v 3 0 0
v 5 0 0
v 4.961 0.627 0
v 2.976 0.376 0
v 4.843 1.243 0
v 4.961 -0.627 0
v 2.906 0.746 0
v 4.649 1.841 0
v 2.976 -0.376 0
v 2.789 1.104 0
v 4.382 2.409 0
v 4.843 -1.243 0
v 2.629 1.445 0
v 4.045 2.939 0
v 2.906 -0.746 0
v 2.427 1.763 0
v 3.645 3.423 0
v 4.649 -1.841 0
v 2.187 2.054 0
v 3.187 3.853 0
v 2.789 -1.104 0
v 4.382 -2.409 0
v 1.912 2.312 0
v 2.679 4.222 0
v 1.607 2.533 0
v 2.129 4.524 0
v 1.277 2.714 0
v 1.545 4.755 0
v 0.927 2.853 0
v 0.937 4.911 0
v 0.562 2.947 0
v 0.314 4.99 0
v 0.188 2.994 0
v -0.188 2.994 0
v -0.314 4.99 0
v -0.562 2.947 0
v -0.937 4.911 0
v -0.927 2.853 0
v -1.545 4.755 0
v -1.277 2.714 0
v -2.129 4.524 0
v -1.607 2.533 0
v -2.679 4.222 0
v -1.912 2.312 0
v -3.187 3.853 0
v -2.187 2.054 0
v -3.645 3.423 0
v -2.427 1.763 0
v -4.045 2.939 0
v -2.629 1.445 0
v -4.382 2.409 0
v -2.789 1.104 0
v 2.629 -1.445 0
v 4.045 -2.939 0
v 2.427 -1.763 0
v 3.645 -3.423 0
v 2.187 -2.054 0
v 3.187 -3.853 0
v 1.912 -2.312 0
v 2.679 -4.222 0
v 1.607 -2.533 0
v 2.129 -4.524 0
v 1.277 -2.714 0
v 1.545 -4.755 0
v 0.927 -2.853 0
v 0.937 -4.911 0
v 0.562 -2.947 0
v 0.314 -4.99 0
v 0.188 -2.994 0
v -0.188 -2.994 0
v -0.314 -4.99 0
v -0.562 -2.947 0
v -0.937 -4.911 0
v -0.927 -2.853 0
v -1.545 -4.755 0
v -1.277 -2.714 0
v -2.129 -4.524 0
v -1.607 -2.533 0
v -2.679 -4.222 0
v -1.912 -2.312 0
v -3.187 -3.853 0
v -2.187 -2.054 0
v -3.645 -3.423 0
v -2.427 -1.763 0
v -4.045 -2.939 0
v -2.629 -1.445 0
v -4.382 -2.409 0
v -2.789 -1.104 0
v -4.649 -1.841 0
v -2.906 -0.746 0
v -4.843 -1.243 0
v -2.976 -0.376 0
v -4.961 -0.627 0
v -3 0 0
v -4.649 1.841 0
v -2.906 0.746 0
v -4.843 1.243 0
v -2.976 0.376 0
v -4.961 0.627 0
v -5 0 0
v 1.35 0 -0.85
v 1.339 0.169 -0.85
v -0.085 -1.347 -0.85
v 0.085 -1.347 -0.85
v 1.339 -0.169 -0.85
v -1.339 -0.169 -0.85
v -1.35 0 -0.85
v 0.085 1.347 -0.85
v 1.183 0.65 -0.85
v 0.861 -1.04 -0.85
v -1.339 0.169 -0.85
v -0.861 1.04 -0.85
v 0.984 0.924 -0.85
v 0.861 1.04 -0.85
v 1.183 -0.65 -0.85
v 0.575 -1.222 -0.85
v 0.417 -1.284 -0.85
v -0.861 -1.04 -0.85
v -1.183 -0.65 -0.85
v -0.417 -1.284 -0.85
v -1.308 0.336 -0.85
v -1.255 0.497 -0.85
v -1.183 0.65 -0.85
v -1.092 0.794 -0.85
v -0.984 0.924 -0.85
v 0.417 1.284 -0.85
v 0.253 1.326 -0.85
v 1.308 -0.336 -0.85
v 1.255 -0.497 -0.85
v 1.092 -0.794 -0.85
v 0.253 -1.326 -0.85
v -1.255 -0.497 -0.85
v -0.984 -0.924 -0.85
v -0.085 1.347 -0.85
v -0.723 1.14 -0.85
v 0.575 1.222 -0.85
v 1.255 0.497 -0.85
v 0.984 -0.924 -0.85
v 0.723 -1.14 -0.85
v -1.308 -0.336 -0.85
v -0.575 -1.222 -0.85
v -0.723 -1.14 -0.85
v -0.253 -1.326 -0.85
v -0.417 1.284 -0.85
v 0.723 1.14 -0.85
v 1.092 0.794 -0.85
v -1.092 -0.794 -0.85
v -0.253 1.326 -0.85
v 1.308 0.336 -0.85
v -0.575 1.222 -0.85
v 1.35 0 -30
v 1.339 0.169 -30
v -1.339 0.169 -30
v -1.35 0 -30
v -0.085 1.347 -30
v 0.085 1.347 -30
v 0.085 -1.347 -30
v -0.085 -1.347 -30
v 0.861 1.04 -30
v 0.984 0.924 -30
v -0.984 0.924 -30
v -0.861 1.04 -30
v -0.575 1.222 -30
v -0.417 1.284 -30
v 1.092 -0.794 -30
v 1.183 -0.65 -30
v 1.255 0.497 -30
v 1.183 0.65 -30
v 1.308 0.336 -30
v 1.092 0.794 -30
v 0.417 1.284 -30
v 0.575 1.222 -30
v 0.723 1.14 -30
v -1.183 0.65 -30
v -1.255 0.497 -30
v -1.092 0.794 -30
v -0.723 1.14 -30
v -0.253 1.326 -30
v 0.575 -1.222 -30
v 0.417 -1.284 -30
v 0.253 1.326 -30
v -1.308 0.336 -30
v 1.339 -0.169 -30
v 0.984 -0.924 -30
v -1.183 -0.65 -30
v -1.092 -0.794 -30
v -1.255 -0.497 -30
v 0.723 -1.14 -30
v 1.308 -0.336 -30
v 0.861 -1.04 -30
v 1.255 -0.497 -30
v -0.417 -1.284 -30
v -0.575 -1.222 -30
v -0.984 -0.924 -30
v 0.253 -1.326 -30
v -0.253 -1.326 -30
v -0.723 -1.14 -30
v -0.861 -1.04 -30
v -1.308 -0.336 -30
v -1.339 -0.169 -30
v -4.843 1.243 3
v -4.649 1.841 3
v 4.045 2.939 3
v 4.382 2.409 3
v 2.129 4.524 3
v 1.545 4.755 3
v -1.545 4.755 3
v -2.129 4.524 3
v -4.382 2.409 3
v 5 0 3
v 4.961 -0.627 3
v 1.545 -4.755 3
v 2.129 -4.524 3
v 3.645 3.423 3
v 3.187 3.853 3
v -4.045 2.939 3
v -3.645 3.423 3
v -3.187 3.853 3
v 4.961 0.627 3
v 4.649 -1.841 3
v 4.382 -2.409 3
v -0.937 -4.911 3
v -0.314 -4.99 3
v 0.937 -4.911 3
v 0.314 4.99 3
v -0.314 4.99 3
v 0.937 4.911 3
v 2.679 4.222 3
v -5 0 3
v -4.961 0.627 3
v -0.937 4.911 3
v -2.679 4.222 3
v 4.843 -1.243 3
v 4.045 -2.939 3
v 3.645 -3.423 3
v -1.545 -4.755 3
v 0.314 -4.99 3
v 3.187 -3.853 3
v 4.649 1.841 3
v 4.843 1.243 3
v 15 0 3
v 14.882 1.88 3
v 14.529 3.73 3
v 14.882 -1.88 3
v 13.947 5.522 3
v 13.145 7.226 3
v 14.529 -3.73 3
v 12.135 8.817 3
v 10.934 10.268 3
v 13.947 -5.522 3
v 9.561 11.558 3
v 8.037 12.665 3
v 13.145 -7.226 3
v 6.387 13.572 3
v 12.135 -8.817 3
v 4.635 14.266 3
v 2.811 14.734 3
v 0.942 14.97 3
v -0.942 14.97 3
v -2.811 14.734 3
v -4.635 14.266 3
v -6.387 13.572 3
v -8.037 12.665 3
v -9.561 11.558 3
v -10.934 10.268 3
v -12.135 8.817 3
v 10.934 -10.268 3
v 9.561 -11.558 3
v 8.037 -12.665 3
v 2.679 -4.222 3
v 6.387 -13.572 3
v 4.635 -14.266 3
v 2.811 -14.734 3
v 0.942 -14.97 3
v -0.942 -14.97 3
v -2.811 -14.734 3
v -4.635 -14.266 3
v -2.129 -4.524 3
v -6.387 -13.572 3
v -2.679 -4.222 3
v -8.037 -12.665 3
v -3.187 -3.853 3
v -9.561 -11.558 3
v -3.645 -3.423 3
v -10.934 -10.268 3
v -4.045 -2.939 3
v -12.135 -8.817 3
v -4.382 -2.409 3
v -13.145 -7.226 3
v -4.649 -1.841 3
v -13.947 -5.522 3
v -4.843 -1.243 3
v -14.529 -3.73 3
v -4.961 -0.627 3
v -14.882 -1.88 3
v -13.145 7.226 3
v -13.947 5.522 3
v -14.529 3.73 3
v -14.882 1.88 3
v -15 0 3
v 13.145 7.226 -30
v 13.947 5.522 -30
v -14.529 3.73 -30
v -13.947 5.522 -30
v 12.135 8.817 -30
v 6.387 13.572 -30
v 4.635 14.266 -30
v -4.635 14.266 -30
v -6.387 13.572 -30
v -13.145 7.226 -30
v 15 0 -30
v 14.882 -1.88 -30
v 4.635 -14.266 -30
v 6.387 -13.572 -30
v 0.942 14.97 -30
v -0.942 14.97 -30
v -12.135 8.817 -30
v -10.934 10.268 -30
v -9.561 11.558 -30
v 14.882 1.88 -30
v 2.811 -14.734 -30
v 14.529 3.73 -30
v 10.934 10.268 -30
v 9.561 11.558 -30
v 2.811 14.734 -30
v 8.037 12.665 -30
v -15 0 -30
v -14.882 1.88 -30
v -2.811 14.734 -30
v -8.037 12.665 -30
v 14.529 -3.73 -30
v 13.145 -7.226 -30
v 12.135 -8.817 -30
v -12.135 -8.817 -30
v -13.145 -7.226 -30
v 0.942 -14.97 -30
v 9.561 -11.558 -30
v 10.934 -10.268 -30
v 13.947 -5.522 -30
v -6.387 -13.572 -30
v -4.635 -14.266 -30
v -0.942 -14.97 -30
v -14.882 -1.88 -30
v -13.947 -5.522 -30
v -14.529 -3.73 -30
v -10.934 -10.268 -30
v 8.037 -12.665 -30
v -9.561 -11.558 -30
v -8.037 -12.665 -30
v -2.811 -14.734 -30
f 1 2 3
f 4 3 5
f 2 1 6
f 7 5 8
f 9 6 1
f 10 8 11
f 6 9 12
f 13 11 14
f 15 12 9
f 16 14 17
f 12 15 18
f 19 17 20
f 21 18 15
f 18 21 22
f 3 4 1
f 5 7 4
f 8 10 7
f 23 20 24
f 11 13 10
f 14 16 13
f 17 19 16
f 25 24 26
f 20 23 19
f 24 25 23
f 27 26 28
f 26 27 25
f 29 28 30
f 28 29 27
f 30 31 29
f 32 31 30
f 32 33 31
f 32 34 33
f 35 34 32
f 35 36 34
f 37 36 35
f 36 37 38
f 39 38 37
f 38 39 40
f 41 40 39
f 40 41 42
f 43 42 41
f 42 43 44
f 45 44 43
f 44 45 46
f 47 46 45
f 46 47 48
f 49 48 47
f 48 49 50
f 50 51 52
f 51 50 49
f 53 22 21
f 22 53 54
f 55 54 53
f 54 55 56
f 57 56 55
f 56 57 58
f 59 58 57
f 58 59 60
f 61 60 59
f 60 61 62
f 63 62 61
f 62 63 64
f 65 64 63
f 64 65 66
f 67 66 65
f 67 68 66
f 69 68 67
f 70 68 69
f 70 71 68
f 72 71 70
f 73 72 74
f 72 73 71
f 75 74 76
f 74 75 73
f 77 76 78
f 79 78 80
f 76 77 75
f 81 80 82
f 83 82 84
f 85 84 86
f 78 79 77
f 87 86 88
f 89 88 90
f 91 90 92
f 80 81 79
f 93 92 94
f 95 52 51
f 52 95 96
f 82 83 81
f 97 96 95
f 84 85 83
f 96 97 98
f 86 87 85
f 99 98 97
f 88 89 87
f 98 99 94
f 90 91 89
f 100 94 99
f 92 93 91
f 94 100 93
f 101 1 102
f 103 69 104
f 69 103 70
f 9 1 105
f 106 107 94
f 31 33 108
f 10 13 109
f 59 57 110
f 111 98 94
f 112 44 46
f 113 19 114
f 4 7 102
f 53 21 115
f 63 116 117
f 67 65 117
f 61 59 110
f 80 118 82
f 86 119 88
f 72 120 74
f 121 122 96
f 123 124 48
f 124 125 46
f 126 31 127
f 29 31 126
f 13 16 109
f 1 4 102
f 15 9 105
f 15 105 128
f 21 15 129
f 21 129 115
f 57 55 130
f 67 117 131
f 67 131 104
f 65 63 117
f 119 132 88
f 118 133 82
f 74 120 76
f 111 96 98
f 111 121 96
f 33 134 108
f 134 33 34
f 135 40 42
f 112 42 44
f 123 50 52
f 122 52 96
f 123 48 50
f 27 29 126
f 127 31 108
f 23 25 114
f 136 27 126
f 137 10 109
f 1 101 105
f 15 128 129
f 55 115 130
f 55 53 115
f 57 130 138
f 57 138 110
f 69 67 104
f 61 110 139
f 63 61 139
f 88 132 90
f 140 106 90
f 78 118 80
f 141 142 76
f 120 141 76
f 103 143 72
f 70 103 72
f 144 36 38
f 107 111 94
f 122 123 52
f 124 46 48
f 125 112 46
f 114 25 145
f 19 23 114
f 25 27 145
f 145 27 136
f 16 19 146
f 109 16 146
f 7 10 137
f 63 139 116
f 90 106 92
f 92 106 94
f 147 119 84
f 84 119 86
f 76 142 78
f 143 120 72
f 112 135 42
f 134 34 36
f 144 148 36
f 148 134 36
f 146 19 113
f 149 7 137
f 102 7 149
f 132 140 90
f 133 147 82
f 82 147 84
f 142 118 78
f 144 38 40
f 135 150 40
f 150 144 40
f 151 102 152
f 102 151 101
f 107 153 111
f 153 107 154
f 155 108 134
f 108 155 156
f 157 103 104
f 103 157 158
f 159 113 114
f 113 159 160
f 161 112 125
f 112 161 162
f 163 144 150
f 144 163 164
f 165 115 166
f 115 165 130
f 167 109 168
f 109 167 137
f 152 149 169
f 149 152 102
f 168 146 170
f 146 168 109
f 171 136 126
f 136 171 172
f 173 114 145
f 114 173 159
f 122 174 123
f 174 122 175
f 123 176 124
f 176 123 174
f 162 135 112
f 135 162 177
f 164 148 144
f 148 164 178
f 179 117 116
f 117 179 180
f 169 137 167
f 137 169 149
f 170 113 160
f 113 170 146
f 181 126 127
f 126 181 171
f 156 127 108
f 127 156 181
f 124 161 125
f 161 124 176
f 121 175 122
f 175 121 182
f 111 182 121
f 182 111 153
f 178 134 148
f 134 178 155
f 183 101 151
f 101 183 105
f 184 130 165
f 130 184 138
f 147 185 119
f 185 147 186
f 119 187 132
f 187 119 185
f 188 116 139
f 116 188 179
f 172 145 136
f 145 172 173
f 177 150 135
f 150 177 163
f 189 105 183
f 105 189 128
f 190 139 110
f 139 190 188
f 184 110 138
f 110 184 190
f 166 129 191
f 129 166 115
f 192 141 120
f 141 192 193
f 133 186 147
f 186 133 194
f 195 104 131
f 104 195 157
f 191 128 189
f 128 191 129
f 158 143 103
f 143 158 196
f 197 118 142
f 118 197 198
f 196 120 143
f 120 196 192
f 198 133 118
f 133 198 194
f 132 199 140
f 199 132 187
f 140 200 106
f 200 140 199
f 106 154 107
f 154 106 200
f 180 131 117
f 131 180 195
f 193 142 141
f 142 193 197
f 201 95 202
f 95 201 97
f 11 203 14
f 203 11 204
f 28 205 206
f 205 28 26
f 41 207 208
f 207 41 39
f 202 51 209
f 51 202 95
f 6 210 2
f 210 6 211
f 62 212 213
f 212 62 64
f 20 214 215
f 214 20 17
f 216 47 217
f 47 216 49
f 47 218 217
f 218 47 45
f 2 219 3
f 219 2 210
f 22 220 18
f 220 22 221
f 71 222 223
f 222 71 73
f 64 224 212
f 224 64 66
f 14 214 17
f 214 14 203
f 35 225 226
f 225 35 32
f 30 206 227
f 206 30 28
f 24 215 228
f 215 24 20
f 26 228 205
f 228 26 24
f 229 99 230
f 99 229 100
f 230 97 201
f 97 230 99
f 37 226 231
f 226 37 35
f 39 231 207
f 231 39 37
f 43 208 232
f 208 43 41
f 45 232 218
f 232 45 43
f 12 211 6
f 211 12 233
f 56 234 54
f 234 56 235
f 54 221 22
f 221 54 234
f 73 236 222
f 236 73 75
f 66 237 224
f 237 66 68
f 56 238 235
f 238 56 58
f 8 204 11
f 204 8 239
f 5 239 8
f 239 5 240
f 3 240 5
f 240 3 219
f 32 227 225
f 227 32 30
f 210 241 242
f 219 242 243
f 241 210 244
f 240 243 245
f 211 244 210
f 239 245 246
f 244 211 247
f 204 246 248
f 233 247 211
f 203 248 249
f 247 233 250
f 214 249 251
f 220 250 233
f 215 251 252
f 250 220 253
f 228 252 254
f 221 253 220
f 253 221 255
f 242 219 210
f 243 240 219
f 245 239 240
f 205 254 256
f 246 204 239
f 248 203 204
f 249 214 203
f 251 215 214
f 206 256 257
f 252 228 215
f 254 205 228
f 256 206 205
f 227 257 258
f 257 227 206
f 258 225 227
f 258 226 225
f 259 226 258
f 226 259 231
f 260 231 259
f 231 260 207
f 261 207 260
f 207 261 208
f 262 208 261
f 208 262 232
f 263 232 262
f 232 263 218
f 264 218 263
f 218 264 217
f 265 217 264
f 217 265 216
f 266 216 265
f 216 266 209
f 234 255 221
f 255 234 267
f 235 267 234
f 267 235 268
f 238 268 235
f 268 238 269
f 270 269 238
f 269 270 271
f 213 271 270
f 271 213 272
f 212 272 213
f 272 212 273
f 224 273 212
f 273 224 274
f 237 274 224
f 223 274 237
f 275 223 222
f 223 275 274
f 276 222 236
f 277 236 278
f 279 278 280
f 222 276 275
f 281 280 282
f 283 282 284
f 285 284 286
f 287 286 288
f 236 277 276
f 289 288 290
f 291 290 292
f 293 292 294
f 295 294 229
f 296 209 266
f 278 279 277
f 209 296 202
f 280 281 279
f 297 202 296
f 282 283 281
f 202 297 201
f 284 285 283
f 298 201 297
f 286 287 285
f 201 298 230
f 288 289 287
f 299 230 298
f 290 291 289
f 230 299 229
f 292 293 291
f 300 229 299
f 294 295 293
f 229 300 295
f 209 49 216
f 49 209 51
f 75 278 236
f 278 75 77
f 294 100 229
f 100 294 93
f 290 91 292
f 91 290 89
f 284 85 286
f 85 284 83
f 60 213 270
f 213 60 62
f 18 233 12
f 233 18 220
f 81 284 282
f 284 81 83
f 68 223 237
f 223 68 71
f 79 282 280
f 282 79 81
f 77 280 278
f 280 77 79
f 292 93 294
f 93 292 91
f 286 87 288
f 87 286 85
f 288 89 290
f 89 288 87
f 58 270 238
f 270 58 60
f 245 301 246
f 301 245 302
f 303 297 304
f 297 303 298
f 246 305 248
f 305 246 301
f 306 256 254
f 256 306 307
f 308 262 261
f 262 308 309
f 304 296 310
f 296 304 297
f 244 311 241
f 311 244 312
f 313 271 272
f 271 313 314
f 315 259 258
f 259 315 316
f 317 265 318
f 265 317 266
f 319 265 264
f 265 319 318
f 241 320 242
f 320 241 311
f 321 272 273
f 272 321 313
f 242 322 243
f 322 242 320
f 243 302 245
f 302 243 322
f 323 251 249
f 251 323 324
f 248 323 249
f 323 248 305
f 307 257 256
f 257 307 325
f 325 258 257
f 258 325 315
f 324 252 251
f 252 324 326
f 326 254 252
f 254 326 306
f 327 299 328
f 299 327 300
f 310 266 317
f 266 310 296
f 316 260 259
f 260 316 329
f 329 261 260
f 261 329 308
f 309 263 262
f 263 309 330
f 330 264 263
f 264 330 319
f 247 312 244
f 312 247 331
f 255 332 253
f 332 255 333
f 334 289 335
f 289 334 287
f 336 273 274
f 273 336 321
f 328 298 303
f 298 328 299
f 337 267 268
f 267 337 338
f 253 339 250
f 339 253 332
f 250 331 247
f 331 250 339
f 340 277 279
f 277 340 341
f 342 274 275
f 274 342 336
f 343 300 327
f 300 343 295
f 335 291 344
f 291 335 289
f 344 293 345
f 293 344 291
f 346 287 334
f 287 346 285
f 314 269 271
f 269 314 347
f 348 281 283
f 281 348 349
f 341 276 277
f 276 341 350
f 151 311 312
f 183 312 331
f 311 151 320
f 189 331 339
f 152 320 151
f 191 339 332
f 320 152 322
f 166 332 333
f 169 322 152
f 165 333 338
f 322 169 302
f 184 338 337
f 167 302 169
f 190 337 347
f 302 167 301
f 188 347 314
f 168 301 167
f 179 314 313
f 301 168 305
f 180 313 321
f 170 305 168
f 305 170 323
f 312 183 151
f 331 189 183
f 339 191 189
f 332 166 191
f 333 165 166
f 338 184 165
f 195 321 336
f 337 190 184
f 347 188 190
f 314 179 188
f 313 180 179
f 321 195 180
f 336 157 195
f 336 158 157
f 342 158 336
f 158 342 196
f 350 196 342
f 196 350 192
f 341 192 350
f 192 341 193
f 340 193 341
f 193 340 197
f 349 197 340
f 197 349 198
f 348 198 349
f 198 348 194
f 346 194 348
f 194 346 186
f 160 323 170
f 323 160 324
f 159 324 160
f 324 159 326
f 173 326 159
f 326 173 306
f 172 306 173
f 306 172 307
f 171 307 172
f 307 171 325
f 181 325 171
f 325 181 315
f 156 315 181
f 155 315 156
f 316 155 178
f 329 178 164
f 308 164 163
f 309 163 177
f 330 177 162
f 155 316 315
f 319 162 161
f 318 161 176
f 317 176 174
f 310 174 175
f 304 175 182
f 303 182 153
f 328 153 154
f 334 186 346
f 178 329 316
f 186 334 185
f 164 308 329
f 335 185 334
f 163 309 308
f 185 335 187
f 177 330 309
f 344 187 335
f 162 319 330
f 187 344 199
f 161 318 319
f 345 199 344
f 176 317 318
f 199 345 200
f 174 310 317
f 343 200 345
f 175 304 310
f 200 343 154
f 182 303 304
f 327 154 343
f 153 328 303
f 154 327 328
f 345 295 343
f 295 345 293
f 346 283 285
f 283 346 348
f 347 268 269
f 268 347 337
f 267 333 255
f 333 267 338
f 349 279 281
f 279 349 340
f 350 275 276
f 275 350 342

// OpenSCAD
$fn = 50;

difference() {
	union() {
		translate(v = [0, 0, -30.0]) {
			cylinder(h = 33, r = 15.0);
		}
	}
	union() {
		translate(v = [0, 0, 0]) {
			rotate(a = [0, 0, 0]) {
				difference() {
					union() {
						translate(v = [0, 0, -33.0]) {
							cylinder(h = 33, r = 1.0);
						}
						translate(v = [0, 0, -0.85]) {
							cylinder(h = 0.85, r1 = 1.35, r2 = 3.0);
						}
						translate(v = [0, 0, -33.0]) {
							cylinder(h = 33, r = 1.35);
						}
						translate(v = [0, 0, -33.0]) {
							cylinder(h = 33, r = 1.0);
						}
					}
					union();
				}
			}
		}
		#cylinder(h = 3, r = 5.0);
	}
}
